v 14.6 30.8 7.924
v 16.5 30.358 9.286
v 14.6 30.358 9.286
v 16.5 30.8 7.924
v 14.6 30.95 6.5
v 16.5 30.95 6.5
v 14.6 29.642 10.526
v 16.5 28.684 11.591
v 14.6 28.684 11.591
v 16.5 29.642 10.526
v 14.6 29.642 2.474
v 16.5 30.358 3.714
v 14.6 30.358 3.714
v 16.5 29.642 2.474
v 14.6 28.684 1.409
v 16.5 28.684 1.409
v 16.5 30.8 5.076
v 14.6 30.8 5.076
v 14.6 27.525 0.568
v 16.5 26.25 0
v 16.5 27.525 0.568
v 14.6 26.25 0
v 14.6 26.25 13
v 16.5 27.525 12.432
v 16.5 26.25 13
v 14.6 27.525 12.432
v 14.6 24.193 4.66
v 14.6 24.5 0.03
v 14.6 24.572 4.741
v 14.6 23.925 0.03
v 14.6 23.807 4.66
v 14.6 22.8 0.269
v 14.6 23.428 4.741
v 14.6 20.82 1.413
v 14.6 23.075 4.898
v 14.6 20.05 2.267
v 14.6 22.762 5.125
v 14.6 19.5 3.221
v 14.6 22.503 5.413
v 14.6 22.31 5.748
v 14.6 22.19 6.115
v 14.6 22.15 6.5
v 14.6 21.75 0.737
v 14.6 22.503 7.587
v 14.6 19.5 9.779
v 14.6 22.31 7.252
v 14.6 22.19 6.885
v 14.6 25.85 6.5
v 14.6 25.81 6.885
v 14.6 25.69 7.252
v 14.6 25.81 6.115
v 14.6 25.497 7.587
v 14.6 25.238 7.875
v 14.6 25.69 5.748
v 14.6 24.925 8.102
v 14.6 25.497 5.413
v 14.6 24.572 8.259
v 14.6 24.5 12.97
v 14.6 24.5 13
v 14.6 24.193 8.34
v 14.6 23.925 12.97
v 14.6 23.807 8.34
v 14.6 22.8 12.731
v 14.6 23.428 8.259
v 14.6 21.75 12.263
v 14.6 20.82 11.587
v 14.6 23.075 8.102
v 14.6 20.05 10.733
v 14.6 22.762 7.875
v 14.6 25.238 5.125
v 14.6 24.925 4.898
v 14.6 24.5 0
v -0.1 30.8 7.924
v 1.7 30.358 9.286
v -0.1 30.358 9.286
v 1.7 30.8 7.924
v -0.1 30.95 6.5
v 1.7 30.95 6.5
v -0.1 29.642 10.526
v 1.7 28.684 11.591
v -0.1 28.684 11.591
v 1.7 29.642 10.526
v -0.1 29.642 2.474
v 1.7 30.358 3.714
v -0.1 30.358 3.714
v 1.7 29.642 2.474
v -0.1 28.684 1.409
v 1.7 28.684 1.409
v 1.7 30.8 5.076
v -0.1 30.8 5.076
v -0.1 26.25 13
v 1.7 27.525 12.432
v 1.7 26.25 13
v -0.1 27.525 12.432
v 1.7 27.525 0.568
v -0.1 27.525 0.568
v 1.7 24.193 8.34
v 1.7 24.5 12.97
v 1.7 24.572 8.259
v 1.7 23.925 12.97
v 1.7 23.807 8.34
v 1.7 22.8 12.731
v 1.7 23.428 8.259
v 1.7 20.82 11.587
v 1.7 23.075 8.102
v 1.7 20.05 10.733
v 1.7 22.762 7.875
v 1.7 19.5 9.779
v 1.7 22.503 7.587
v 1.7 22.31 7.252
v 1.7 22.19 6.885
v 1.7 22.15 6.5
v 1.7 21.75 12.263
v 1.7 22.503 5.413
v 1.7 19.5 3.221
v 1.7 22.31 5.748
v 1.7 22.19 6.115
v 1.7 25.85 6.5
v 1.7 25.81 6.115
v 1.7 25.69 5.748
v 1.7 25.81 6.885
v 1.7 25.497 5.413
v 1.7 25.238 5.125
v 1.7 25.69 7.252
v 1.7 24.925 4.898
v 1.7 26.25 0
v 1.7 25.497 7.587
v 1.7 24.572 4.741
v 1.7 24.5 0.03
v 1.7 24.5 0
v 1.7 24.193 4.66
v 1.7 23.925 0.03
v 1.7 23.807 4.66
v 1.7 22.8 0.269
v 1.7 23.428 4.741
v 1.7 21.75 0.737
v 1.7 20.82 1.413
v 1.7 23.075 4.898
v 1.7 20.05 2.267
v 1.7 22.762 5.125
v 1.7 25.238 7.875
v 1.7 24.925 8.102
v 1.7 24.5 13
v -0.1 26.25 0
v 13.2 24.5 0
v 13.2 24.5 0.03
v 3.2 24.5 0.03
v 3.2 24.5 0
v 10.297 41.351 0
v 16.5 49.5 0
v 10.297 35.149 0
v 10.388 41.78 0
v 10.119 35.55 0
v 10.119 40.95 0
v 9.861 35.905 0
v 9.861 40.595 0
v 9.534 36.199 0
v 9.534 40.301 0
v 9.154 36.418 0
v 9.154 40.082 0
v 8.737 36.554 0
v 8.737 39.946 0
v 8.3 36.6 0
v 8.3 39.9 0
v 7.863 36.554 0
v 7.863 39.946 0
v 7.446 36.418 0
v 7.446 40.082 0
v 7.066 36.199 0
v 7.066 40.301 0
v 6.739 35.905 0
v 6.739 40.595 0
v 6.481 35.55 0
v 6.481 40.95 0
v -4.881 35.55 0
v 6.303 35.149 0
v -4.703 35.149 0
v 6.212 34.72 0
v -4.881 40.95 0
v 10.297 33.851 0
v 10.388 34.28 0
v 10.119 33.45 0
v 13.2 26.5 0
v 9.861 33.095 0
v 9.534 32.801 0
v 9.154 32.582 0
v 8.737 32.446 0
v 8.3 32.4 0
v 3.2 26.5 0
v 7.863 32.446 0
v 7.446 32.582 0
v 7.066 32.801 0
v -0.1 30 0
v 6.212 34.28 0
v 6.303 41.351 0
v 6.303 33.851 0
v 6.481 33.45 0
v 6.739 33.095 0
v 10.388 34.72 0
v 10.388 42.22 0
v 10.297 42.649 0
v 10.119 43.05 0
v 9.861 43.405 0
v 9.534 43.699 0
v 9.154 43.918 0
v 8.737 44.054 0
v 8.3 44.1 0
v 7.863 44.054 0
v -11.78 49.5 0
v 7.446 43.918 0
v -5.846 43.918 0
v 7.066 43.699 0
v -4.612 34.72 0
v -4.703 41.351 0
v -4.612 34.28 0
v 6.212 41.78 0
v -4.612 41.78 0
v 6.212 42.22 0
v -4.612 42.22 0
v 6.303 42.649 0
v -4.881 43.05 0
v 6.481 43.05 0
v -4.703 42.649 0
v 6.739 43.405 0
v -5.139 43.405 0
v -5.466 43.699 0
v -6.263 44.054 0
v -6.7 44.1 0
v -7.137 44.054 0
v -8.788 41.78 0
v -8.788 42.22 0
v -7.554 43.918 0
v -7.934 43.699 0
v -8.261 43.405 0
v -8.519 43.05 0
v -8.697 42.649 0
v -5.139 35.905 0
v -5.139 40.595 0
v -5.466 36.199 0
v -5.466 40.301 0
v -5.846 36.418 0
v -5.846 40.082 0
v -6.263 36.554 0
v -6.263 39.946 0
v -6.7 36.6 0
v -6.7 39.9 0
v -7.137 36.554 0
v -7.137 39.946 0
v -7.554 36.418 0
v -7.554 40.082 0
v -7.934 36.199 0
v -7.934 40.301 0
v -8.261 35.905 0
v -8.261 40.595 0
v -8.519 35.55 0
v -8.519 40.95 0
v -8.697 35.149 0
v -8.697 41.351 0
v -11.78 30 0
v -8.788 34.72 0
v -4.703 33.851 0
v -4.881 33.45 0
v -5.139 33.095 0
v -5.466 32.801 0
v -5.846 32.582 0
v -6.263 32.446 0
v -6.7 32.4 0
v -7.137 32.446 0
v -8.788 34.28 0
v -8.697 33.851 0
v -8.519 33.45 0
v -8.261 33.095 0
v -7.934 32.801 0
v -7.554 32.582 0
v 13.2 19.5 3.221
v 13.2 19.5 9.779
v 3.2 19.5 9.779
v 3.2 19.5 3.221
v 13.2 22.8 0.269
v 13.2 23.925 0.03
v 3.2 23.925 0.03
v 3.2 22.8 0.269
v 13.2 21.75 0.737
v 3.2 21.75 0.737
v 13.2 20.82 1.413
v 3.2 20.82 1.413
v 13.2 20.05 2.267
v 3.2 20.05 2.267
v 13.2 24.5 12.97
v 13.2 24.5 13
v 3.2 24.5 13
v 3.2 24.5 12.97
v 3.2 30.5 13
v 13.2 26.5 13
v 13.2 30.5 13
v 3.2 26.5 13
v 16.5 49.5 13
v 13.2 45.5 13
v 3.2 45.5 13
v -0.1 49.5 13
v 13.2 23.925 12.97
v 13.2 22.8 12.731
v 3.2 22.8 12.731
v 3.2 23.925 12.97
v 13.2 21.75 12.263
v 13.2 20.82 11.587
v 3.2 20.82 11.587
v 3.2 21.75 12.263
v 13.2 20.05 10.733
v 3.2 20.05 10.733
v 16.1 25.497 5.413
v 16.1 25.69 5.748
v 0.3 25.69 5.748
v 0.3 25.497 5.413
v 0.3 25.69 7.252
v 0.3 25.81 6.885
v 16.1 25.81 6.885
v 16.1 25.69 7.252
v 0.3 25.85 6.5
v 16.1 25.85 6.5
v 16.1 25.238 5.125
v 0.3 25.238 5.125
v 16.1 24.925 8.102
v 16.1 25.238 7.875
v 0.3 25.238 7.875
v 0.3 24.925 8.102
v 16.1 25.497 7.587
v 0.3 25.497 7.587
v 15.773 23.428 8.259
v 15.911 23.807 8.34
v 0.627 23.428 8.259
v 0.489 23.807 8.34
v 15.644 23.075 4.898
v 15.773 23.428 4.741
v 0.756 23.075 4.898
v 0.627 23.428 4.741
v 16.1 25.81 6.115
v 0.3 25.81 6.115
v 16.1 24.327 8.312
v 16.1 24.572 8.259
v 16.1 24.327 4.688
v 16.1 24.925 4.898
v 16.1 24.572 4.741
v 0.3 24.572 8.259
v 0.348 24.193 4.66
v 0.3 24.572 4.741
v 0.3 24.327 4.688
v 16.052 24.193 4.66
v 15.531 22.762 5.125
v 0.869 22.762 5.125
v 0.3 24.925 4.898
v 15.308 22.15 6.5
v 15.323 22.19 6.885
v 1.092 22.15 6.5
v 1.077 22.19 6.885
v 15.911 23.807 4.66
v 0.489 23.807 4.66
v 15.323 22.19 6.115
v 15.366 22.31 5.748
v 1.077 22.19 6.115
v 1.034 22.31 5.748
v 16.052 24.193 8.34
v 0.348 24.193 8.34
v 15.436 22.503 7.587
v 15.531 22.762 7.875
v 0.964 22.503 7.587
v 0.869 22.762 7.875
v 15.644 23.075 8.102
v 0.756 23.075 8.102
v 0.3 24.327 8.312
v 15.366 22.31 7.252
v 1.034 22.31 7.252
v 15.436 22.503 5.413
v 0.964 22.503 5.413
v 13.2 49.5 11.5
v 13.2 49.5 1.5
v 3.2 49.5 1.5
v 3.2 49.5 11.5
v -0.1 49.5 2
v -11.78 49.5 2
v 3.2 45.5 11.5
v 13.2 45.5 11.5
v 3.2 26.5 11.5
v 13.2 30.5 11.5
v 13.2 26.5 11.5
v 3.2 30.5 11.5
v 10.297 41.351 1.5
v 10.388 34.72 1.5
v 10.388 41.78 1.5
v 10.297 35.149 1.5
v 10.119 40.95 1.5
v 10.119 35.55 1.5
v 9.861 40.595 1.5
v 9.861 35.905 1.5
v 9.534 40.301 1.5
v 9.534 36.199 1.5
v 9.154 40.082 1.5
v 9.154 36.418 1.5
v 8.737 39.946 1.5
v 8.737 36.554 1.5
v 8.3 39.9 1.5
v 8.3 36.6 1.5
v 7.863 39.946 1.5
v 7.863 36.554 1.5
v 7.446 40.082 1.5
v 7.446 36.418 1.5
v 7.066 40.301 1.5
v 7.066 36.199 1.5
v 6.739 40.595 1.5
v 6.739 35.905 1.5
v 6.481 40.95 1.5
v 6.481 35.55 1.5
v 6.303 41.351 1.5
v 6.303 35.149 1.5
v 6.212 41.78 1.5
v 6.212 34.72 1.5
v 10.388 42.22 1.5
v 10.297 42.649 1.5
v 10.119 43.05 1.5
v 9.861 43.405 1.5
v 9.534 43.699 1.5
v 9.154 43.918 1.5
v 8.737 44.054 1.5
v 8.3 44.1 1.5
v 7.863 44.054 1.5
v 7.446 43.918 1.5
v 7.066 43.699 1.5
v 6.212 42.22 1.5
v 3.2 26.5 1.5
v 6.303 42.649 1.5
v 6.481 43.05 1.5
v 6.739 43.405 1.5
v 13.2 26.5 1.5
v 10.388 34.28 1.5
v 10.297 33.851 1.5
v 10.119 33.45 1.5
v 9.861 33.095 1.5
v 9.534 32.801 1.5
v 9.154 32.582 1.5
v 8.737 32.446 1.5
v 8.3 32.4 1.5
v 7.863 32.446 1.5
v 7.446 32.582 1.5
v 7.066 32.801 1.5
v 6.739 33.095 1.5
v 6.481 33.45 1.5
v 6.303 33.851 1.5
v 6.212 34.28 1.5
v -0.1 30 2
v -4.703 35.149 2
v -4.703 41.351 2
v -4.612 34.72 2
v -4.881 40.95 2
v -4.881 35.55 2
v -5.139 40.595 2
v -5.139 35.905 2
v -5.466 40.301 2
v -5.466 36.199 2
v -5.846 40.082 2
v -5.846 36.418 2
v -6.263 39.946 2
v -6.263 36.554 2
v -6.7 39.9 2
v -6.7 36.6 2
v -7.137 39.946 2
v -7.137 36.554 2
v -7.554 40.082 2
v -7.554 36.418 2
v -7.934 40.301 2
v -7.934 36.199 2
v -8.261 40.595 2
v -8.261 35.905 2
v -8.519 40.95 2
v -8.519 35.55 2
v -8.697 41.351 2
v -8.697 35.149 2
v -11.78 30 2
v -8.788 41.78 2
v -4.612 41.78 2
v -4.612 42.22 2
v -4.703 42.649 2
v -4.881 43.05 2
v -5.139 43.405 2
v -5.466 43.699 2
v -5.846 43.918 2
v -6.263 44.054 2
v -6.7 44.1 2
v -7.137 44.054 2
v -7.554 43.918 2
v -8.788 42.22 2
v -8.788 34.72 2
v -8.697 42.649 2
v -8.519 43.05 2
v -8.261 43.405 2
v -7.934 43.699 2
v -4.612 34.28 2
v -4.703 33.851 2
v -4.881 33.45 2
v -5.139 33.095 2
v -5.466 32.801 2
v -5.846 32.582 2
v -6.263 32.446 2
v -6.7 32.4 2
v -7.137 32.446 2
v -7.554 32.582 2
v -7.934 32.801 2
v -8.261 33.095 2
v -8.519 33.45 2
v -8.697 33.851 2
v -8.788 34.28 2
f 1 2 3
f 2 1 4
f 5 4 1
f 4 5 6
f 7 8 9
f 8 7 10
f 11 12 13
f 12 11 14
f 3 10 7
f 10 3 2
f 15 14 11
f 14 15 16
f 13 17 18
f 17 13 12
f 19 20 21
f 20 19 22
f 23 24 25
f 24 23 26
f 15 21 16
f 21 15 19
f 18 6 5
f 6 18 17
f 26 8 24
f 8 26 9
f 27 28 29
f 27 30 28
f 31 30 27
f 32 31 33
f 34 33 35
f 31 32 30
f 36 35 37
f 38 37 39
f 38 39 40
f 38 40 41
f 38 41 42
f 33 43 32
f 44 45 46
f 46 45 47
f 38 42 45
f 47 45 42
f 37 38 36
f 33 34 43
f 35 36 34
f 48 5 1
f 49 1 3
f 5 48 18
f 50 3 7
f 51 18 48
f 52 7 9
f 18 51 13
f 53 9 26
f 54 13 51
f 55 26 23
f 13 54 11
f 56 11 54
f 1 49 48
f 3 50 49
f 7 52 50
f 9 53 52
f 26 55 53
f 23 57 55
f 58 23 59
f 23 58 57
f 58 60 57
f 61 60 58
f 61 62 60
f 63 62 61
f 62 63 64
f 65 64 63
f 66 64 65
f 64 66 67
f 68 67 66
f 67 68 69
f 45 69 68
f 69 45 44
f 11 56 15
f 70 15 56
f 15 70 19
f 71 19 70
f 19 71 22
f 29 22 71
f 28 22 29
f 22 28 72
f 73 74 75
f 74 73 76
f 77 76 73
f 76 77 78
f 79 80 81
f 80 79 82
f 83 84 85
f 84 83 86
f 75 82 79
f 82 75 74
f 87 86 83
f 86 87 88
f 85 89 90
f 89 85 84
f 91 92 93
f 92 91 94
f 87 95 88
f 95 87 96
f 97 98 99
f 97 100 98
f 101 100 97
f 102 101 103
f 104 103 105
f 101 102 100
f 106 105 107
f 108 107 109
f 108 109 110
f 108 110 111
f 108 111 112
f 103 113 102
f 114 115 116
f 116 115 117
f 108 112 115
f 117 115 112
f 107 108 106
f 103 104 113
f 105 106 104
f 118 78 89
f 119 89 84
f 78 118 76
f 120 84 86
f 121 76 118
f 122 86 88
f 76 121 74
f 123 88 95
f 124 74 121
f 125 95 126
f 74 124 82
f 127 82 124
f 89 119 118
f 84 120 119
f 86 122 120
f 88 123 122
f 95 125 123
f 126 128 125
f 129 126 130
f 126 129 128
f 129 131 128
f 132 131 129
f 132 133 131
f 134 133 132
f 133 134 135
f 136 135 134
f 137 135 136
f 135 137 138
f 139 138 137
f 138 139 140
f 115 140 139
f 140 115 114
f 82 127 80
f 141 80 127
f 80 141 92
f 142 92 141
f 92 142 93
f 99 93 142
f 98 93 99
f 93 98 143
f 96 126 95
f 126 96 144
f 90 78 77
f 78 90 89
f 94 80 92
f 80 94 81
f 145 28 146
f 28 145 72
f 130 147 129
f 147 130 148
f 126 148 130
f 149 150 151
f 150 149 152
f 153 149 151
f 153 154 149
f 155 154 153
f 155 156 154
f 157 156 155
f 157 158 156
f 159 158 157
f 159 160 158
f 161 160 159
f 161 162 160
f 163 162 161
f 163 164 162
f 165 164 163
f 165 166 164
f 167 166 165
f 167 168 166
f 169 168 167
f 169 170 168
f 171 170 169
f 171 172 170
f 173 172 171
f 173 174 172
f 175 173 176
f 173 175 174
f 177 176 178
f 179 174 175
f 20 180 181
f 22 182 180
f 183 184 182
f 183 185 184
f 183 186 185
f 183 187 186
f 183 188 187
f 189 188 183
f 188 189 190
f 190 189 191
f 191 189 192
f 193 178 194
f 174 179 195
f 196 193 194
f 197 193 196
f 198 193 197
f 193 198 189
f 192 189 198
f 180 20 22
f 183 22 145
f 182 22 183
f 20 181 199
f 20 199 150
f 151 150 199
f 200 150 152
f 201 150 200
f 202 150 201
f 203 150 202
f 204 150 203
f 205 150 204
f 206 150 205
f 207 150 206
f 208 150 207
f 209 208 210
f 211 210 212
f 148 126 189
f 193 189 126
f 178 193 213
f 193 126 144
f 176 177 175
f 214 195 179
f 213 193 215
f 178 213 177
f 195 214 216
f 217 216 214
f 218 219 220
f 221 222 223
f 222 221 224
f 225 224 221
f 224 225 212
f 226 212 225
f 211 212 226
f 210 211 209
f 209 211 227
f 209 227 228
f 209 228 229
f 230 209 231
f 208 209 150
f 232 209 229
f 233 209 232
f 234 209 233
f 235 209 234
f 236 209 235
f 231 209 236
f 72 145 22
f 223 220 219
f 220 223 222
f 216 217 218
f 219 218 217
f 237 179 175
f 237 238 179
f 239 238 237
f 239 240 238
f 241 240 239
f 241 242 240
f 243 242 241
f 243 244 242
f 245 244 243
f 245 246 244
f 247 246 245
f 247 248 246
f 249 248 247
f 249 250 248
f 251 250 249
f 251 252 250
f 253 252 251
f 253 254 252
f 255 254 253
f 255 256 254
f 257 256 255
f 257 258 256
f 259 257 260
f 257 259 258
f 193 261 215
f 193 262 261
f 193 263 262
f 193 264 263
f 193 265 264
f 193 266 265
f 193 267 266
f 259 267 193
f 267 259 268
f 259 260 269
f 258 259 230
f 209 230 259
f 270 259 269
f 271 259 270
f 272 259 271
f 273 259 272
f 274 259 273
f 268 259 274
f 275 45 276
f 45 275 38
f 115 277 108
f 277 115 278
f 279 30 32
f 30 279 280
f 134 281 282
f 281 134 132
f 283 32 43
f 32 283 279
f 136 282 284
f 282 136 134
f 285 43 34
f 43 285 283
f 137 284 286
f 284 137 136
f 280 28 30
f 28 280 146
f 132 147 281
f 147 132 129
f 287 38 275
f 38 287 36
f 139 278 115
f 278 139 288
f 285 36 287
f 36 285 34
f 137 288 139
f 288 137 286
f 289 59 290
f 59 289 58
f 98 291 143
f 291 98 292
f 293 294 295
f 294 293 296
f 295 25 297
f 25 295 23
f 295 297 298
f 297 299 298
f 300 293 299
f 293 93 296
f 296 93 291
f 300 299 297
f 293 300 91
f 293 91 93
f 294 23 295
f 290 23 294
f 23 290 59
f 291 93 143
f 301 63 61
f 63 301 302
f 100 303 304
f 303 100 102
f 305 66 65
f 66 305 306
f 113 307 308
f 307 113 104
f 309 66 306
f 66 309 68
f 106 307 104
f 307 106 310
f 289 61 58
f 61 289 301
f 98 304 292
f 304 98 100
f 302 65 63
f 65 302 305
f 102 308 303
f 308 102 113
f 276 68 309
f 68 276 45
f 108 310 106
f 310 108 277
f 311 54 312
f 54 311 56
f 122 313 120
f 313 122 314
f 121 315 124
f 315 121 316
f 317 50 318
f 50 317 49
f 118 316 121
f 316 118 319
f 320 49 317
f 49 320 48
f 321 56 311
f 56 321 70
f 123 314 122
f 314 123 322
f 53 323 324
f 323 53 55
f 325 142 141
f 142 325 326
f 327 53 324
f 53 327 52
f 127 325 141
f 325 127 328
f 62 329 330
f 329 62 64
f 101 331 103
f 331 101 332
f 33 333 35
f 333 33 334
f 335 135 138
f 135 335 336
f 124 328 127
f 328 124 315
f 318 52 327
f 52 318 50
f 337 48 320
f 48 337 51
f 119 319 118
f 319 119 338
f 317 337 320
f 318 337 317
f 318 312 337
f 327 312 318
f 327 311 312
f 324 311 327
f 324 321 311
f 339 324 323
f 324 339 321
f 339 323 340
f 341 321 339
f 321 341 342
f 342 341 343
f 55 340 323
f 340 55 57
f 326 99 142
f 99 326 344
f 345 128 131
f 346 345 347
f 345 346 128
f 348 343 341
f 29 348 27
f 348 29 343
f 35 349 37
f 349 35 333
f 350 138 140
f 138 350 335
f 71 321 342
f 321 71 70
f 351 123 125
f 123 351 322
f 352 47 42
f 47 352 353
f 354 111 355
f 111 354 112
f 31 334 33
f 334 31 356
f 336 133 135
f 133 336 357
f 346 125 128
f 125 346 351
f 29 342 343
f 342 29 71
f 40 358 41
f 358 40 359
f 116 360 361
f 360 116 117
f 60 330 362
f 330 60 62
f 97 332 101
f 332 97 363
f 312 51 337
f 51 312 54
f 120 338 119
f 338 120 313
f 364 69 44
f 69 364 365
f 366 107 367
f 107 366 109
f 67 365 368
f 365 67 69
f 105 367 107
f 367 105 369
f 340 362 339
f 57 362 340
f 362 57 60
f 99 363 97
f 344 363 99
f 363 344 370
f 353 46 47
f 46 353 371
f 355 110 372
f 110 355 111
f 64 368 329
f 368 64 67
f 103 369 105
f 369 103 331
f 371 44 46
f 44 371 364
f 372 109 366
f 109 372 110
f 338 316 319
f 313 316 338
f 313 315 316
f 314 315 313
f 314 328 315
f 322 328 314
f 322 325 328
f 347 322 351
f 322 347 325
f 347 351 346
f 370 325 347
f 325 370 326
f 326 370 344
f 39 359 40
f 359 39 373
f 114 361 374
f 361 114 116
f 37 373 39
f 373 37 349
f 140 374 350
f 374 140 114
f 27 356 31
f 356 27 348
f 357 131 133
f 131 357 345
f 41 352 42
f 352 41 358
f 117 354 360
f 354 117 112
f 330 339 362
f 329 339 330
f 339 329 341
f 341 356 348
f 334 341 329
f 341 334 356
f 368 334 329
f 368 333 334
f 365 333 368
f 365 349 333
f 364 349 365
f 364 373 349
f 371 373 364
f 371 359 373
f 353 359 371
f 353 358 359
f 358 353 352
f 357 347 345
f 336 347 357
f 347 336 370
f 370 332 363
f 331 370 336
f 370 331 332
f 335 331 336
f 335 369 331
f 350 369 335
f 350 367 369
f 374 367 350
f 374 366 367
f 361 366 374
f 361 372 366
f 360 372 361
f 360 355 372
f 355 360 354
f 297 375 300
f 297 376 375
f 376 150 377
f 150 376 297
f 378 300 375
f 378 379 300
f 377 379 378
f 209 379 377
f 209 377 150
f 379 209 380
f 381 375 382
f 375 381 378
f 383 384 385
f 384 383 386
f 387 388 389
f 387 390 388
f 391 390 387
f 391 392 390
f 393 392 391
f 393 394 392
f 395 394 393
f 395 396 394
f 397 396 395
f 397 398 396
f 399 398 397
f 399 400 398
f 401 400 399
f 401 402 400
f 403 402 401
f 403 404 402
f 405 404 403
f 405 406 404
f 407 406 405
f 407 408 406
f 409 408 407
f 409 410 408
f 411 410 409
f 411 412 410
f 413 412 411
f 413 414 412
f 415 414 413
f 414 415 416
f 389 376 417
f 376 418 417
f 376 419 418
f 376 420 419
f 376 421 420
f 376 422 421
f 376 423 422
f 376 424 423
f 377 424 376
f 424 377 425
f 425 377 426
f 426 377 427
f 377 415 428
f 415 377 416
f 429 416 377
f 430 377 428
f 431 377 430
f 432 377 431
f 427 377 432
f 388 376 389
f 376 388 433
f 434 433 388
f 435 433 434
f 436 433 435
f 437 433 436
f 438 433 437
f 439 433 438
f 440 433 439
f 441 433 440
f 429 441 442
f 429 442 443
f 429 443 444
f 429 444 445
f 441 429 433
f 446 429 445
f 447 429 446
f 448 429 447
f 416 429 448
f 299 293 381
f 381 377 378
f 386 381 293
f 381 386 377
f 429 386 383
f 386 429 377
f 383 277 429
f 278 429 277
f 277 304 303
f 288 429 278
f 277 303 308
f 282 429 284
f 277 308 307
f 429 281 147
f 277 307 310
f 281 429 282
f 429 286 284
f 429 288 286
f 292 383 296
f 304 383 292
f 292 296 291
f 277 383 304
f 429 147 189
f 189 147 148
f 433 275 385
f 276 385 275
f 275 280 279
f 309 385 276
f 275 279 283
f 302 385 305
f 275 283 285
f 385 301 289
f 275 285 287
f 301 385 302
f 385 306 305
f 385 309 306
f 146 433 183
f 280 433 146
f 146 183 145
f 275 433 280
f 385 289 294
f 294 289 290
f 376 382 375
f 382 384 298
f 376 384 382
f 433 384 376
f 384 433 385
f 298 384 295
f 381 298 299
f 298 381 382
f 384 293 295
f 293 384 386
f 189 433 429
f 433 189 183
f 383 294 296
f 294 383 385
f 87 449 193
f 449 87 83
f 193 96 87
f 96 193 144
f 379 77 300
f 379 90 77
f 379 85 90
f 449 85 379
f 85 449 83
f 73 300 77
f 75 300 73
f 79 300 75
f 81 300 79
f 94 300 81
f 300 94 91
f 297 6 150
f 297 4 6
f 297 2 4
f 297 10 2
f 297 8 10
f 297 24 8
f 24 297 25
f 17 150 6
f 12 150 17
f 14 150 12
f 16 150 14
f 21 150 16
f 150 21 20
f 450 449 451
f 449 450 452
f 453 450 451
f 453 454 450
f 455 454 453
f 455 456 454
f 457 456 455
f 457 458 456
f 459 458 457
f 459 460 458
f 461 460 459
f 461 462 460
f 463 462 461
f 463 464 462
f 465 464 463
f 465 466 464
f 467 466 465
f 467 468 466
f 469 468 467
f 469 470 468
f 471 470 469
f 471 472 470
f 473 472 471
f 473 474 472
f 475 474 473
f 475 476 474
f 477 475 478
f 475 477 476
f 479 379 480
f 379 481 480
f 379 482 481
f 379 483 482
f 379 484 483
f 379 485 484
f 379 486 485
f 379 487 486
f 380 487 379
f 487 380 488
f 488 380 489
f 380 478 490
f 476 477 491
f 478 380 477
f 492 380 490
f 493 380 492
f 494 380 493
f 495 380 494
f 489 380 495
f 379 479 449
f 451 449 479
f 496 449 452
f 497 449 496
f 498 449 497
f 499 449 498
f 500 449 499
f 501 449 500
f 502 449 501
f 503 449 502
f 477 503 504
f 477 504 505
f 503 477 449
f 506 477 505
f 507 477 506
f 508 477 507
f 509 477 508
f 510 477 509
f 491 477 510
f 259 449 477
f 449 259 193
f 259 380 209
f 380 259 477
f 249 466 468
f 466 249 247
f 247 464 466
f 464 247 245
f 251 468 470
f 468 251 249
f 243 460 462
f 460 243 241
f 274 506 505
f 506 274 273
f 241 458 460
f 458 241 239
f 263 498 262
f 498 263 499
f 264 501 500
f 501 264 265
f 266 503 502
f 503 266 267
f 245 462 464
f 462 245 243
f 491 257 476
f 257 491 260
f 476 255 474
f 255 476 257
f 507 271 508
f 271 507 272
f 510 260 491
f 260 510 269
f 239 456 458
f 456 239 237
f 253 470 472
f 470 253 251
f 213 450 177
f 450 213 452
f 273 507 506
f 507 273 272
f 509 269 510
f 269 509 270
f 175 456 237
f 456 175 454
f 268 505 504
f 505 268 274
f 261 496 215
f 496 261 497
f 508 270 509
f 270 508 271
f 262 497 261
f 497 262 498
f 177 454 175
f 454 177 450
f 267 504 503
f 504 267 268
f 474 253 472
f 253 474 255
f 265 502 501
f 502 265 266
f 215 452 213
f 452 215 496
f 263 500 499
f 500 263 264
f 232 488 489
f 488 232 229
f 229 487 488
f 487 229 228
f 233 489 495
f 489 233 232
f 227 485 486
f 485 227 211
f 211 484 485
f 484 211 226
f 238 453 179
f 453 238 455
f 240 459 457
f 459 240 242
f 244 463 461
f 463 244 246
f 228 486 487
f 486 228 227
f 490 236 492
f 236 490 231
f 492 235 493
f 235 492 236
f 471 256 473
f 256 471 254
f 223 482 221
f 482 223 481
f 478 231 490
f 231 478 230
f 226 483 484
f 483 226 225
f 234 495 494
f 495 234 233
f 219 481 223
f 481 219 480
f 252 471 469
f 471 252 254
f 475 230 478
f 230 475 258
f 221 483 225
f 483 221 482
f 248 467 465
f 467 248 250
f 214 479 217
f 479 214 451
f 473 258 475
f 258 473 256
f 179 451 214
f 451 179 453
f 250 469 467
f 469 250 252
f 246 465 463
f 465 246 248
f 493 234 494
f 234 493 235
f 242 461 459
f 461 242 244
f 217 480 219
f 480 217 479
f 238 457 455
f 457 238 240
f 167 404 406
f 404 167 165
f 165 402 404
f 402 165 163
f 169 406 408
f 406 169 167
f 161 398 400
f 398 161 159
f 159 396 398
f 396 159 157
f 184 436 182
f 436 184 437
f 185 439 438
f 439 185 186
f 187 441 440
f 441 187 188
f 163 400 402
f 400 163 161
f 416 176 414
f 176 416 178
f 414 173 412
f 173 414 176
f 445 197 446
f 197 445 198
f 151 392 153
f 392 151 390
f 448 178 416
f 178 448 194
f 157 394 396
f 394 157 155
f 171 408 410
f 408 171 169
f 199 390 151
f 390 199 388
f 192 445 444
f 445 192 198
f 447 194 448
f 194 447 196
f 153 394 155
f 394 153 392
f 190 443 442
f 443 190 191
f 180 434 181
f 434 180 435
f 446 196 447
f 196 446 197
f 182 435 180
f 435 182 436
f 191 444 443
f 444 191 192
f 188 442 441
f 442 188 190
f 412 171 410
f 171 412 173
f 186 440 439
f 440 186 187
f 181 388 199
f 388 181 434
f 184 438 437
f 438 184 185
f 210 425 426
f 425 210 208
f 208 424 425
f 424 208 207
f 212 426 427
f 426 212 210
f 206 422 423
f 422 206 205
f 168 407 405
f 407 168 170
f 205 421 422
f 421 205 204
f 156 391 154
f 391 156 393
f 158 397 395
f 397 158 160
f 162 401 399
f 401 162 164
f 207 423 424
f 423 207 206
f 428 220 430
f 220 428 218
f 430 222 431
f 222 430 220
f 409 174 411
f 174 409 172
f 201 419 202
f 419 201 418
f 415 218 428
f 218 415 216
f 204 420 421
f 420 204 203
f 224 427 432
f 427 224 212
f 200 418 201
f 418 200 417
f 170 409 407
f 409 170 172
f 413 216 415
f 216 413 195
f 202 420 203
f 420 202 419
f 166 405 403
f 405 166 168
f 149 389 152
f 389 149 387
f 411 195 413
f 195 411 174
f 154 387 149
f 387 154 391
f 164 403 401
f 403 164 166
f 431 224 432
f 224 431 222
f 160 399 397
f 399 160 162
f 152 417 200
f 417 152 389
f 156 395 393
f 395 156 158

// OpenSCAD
//
// PARAMETRIC Cable Chain v0.5
// Zerginator 10/2015
//



use <text_on.scad>

$fn = 30;

ChainDef = [[1,0]];
//ChainDef = [[1,0],[1,0],[1,0],[1,0],[1,0],[1,0],[1,0],[1,0],[1,0],[1,0],[1,30],[1,30],[1,30],[1,30],[1,30],[1,30],[1,0],[1,0],[1,0],[1,0],[1,0],[1,0],[1,0]];


// ===============================================================================
// Type
Type        =       2;         // 1: +45° Bewegbar, 2: +-45°
Round       =       1;         // Runder oder eckiger Typ

// ===============================================================================
// box parameters
width       =       16.6;       // width of the chainlink (Standard: 16.6)
height      =       13;         // height of the chainlink (Standard: 13)
length      =       30;         // length of the chainlink  (Standard: 25, min 30 für Eckig)


// ===============================================================================
// === OUTPUT


// ===Check Consistency of Values
if((!Type && !Start && !End) || ((Round != 1) && (length/height<2.2)))
{
    // === IDIOT BOX (if imposible values were selected)
    cube([30,30,30]);
    color("red")
    text_on_cube("Doh!!", locn_vec=[15,15,15], cube_size=30, face="top", size=5, center=true); 
    color("red")
    text_on_cube("Error!!", locn_vec=[15,15,15], cube_size=30, face="front", size=5, center=true);   
    color("red")
    text_on_cube("Fehler!!", locn_vec=[15,15,15], cube_size=30, face="right", size=4, center=true);   
    color("red")
    text_on_cube("Défaut!!", locn_vec=[15,15,15], cube_size=30, face="left", size=4, center=true);   
    color("red")
    text_on_cube("ошибка!!", locn_vec=[15,15,15], cube_size=30, face="back", size=4, center=true); 
    color("red")
    text_on_cube("错误!!", locn_vec=[15,15,15], cube_size=30, face="bottom", size=4, center=true);     
}

else
    
// === Put the Chainlinks together to a single Cablechain
{
    if( Round == 1)
    {
        vec = select2(ChainDef,[1]);
        for (i = [1:len(ChainDef)]) { 
            c = sumv(vec,i-1,0);
            a = coslength(i,ChainDef,vec); 
            b = sinlength(i,ChainDef,vec); 

            pcsOChain(width, length, height, 0, a, b, c);
        }
    }

}


// ===============================================================================
// === Mathematikfunktionen
function sumv(v,i,s=0) = (i==s ? v[i] : v[i] + sumv(v,i-1,s));
function select(source_vector,select_vector)=
   [ for (i = [0 : len(select_vector) - 1]) source_vector[select_vector[i]] ];
function select2(source_vector,select_vector)=
   [ for (i = [0 : len(source_vector) - 1]) source_vector[i][1] ];
function coslength(j,ChainDef,vec,s=1)=
   (j==s ? (((height/13)*(length-10.5)) * cos(sumv(vec,j-1,0)-ChainDef[j-1][1])) : (((height/13)*(length-10.5))) * cos(sumv(vec,j-1,0)-ChainDef[j-1][1]) + coslength(j-1,ChainDef,vec));  
   
function sinlength(j,ChainDef,vec,s=1)=
   (j==s ? ((height/13)*(length-10.5))*(sin(sumv(vec,j-1,0)-ChainDef[j-1][1])) : ((height/13)*(length-10.5))*(sin(sumv(vec,j-1,0)-ChainDef[j-1][1])) + sinlength(j-1,ChainDef,vec));


// ===============================================================================
// === Generate Chain module
module pcsOChain(width, length, height, posx,posy,posz, ChainAngle) 
    {    
        translate([posx,posy,posz])
        translate([0,(height/13)*4.5,(height/13)*6.5])  
        rotate(a=ChainAngle, v=[1,0,0])
        translate([0,-(height/13)*4.5,-(height/13)*6.5])  
        if (Round != 1)
        {
            pcsMiddlePart(width, length, height);
            pcsOFront(width, length, height);
            translate([0,length - height - overlapping,0]) pcsOBack(width, length, height);
        }
        else
        {
            CableChain(width, length, height);
        }
    }





// ===============================================================================
// ===============================================================================
// ===============================================================================




// ===============================================================================
// === Cable Chain (Rund)

module CableChain(width, length, height)
{
translate([width,0,0])
rotate(a=90, v=[0,0,1])
difference()
    {
    union()
        {
        difference()
            {
                union()
                {
                translate([0,0.1,0])
                    rotate(a=0, v=[0,0,1])
                        cube([length,width,(height/13)*13]);
                translate([length * 0.35,15.1,0])
                    rotate(a=0, v=[0,0,1])
                        cube([length * 0.65,width * 0.8,2]);
                }

                translate([length / 8 * 4, 15 + width / 2, 0]) cylinder(d=4.2,h=height);
                translate([length / 8 * 6, 15 + width / 2, 0]) cylinder(d=4.2,h=height);
                translate([length / 8 * 4, width / 2, 0]) cylinder(d=4.2,h=height);
                translate([length / 8 * 6, width / 2, 0]) cylinder(d=4.2,h=height);

                union()
                    {
                    union()
                        {
                        if (Type == 1)
                        {
                            translate([(height/13)*-0.8,-1,(height/13)*6.4])
                                rotate(a=35, v=[0,-1,0])
                                    cube([(height/13)*9,width+1.5,(height/13)*5]);
                            translate([(height/13)*3.2,-1,(height/13)*9.9])
                                rotate(a=0, v=[0,0,1])
                                    cube([(height/13)*7,width+1.5,(height/13)*4]);
                        }
                         translate([(height/13)*4.6,2,(height/13)*6.5])
                            rotate(a=90, v=[1,0,0])   
                                cylinder(r=(height/13)*6.85, h=3);
                        
                        //FEMALE
                         /*translate([(height/13)*(length-6),width+0.5,(height/13)*6.5])
                                rotate(a=90, v=[1,0,0])   
                                    cylinder(r=(height/13)*2.45, h=width+0.9);*/
                         translate([(height/13)*4.6,width+1.3,(height/13)*6.5])
                            rotate(a=90, v=[1,0,0])
                                cylinder(r=(height/13)*6.85, h=3);
                        
                        }
                    difference()
                        {
                        translate([0,-0.5,0])
                            rotate(a=0, v=[0,0,1])
                                cube([(height/13)*5,width+0.9,(height/13)*4]);
                        {
                        translate([(height/13)*5,width+0.4,(height/13)*5.5])
                            rotate(a=90, v=[1,0,0])   
                                cylinder(r=(height/13)*5.5, h=width+0.9);
                            }
                        }
                    if (Type == 2)
                        {
                        difference()
                            {
                            translate([0,-0.5,9])
                                rotate(a=0, v=[0,0,1])
                                    cube([(height/13)*5,width+0.9,(height/13)*4]);
                            {
                            translate([(height/13)*5,width+0.4,(height/13)*7.5])
                                rotate(a=90, v=[1,0,0])   
                                    cylinder(r=(height/13)*5.5, h=width+0.9);
                                }
                            }
                        }
                    }
                }
                
                // MALE
                difference()
                {
                    translate([(height/13)*4.5,width-0.3,(height/13)*6.5])
                        rotate(a=90, v=[1,0,0])   
                            cylinder(r=(height/13)*1.85, h=width-0.8); 
                    translate([(height/13)-1,-2,(height/13)*4.5])
                        rotate(a=-20, v=[0,0,1])
                            cube([4,4,4]);
                    translate([(height/13)-1,18.8,(height/13)*4.5]) //2.5
                            rotate(a=-70, v=[0,0,1]) //-15
                                cube([4,4,4]);
                }
        } 
        
    union()
        {
            translate([(height/13)*-1,3.4,1.5])
                rotate(a=0, v=[0,0,1])
                    cube([(height/13)*(length+1),width-6.6,height-3]);
            translate([(length / 2) - 4,3.4,(height/13)*3.5])
                rotate(a=0, v=[0,0,1])
                    cube([length / 2,width-6.6,(height/13)*10]);    
            
            if (Type == 1)
            {
                translate([(height/13)*-1,3.4,(height/13)*-1.5])
                    rotate(a=0, v=[0,0,1])
                        cube([(height/13)*8,width-6.6,(height/13)*13]);
                translate([(height/13)*(length-12.5),1.6,(height/13)*9.7])
                    rotate(a=-60, v=[1,0,0])
                        cube([(height/13)*11,3,3]);  
                translate([(height/13)*(length-12.5),width-1.4,(height/13)*9.7])
                    rotate(a=150, v=[1,0,0])
                        cube([(height/13)*11,3,3]);
                translate([(height/13)*(length-12.5),1.6,1.5])
                    rotate(a=0, v=[0,0,1])
                        cube([(height/13)*6,width-3,((height/13)*8.2)+((height/13)*1.5-1.5)]);
                translate([(height/13)*(length-9.65),1.6,0])
                    rotate(a=0, v=[0,0,1])
                        cube([(height/13)*10,width-3,(height/13)*9.7]);
            }
            
            if (Type == 2)
            {
            translate([(height/13)*-1,3.4,(height/13)*-1.5])
                    rotate(a=0, v=[0,0,1])
                        cube([(height/13)*8,width-6.6,(height/13)*16]);
            /*translate([(height/13)*(length-12.5),1.6,1.5])
                    rotate(a=0, v=[0,0,1])
                        cube([(height/13)*6,width-3,height-3]);*/

            /*translate([(height/13)*(length-9.65),1.6,0])
                rotate(a=0, v=[0,0,1])
                    cube([(height/13)*10,width-3,(height/13)*13]);*/
            }
        }
    }    
    
} // END CABLE CHAIN RUND
